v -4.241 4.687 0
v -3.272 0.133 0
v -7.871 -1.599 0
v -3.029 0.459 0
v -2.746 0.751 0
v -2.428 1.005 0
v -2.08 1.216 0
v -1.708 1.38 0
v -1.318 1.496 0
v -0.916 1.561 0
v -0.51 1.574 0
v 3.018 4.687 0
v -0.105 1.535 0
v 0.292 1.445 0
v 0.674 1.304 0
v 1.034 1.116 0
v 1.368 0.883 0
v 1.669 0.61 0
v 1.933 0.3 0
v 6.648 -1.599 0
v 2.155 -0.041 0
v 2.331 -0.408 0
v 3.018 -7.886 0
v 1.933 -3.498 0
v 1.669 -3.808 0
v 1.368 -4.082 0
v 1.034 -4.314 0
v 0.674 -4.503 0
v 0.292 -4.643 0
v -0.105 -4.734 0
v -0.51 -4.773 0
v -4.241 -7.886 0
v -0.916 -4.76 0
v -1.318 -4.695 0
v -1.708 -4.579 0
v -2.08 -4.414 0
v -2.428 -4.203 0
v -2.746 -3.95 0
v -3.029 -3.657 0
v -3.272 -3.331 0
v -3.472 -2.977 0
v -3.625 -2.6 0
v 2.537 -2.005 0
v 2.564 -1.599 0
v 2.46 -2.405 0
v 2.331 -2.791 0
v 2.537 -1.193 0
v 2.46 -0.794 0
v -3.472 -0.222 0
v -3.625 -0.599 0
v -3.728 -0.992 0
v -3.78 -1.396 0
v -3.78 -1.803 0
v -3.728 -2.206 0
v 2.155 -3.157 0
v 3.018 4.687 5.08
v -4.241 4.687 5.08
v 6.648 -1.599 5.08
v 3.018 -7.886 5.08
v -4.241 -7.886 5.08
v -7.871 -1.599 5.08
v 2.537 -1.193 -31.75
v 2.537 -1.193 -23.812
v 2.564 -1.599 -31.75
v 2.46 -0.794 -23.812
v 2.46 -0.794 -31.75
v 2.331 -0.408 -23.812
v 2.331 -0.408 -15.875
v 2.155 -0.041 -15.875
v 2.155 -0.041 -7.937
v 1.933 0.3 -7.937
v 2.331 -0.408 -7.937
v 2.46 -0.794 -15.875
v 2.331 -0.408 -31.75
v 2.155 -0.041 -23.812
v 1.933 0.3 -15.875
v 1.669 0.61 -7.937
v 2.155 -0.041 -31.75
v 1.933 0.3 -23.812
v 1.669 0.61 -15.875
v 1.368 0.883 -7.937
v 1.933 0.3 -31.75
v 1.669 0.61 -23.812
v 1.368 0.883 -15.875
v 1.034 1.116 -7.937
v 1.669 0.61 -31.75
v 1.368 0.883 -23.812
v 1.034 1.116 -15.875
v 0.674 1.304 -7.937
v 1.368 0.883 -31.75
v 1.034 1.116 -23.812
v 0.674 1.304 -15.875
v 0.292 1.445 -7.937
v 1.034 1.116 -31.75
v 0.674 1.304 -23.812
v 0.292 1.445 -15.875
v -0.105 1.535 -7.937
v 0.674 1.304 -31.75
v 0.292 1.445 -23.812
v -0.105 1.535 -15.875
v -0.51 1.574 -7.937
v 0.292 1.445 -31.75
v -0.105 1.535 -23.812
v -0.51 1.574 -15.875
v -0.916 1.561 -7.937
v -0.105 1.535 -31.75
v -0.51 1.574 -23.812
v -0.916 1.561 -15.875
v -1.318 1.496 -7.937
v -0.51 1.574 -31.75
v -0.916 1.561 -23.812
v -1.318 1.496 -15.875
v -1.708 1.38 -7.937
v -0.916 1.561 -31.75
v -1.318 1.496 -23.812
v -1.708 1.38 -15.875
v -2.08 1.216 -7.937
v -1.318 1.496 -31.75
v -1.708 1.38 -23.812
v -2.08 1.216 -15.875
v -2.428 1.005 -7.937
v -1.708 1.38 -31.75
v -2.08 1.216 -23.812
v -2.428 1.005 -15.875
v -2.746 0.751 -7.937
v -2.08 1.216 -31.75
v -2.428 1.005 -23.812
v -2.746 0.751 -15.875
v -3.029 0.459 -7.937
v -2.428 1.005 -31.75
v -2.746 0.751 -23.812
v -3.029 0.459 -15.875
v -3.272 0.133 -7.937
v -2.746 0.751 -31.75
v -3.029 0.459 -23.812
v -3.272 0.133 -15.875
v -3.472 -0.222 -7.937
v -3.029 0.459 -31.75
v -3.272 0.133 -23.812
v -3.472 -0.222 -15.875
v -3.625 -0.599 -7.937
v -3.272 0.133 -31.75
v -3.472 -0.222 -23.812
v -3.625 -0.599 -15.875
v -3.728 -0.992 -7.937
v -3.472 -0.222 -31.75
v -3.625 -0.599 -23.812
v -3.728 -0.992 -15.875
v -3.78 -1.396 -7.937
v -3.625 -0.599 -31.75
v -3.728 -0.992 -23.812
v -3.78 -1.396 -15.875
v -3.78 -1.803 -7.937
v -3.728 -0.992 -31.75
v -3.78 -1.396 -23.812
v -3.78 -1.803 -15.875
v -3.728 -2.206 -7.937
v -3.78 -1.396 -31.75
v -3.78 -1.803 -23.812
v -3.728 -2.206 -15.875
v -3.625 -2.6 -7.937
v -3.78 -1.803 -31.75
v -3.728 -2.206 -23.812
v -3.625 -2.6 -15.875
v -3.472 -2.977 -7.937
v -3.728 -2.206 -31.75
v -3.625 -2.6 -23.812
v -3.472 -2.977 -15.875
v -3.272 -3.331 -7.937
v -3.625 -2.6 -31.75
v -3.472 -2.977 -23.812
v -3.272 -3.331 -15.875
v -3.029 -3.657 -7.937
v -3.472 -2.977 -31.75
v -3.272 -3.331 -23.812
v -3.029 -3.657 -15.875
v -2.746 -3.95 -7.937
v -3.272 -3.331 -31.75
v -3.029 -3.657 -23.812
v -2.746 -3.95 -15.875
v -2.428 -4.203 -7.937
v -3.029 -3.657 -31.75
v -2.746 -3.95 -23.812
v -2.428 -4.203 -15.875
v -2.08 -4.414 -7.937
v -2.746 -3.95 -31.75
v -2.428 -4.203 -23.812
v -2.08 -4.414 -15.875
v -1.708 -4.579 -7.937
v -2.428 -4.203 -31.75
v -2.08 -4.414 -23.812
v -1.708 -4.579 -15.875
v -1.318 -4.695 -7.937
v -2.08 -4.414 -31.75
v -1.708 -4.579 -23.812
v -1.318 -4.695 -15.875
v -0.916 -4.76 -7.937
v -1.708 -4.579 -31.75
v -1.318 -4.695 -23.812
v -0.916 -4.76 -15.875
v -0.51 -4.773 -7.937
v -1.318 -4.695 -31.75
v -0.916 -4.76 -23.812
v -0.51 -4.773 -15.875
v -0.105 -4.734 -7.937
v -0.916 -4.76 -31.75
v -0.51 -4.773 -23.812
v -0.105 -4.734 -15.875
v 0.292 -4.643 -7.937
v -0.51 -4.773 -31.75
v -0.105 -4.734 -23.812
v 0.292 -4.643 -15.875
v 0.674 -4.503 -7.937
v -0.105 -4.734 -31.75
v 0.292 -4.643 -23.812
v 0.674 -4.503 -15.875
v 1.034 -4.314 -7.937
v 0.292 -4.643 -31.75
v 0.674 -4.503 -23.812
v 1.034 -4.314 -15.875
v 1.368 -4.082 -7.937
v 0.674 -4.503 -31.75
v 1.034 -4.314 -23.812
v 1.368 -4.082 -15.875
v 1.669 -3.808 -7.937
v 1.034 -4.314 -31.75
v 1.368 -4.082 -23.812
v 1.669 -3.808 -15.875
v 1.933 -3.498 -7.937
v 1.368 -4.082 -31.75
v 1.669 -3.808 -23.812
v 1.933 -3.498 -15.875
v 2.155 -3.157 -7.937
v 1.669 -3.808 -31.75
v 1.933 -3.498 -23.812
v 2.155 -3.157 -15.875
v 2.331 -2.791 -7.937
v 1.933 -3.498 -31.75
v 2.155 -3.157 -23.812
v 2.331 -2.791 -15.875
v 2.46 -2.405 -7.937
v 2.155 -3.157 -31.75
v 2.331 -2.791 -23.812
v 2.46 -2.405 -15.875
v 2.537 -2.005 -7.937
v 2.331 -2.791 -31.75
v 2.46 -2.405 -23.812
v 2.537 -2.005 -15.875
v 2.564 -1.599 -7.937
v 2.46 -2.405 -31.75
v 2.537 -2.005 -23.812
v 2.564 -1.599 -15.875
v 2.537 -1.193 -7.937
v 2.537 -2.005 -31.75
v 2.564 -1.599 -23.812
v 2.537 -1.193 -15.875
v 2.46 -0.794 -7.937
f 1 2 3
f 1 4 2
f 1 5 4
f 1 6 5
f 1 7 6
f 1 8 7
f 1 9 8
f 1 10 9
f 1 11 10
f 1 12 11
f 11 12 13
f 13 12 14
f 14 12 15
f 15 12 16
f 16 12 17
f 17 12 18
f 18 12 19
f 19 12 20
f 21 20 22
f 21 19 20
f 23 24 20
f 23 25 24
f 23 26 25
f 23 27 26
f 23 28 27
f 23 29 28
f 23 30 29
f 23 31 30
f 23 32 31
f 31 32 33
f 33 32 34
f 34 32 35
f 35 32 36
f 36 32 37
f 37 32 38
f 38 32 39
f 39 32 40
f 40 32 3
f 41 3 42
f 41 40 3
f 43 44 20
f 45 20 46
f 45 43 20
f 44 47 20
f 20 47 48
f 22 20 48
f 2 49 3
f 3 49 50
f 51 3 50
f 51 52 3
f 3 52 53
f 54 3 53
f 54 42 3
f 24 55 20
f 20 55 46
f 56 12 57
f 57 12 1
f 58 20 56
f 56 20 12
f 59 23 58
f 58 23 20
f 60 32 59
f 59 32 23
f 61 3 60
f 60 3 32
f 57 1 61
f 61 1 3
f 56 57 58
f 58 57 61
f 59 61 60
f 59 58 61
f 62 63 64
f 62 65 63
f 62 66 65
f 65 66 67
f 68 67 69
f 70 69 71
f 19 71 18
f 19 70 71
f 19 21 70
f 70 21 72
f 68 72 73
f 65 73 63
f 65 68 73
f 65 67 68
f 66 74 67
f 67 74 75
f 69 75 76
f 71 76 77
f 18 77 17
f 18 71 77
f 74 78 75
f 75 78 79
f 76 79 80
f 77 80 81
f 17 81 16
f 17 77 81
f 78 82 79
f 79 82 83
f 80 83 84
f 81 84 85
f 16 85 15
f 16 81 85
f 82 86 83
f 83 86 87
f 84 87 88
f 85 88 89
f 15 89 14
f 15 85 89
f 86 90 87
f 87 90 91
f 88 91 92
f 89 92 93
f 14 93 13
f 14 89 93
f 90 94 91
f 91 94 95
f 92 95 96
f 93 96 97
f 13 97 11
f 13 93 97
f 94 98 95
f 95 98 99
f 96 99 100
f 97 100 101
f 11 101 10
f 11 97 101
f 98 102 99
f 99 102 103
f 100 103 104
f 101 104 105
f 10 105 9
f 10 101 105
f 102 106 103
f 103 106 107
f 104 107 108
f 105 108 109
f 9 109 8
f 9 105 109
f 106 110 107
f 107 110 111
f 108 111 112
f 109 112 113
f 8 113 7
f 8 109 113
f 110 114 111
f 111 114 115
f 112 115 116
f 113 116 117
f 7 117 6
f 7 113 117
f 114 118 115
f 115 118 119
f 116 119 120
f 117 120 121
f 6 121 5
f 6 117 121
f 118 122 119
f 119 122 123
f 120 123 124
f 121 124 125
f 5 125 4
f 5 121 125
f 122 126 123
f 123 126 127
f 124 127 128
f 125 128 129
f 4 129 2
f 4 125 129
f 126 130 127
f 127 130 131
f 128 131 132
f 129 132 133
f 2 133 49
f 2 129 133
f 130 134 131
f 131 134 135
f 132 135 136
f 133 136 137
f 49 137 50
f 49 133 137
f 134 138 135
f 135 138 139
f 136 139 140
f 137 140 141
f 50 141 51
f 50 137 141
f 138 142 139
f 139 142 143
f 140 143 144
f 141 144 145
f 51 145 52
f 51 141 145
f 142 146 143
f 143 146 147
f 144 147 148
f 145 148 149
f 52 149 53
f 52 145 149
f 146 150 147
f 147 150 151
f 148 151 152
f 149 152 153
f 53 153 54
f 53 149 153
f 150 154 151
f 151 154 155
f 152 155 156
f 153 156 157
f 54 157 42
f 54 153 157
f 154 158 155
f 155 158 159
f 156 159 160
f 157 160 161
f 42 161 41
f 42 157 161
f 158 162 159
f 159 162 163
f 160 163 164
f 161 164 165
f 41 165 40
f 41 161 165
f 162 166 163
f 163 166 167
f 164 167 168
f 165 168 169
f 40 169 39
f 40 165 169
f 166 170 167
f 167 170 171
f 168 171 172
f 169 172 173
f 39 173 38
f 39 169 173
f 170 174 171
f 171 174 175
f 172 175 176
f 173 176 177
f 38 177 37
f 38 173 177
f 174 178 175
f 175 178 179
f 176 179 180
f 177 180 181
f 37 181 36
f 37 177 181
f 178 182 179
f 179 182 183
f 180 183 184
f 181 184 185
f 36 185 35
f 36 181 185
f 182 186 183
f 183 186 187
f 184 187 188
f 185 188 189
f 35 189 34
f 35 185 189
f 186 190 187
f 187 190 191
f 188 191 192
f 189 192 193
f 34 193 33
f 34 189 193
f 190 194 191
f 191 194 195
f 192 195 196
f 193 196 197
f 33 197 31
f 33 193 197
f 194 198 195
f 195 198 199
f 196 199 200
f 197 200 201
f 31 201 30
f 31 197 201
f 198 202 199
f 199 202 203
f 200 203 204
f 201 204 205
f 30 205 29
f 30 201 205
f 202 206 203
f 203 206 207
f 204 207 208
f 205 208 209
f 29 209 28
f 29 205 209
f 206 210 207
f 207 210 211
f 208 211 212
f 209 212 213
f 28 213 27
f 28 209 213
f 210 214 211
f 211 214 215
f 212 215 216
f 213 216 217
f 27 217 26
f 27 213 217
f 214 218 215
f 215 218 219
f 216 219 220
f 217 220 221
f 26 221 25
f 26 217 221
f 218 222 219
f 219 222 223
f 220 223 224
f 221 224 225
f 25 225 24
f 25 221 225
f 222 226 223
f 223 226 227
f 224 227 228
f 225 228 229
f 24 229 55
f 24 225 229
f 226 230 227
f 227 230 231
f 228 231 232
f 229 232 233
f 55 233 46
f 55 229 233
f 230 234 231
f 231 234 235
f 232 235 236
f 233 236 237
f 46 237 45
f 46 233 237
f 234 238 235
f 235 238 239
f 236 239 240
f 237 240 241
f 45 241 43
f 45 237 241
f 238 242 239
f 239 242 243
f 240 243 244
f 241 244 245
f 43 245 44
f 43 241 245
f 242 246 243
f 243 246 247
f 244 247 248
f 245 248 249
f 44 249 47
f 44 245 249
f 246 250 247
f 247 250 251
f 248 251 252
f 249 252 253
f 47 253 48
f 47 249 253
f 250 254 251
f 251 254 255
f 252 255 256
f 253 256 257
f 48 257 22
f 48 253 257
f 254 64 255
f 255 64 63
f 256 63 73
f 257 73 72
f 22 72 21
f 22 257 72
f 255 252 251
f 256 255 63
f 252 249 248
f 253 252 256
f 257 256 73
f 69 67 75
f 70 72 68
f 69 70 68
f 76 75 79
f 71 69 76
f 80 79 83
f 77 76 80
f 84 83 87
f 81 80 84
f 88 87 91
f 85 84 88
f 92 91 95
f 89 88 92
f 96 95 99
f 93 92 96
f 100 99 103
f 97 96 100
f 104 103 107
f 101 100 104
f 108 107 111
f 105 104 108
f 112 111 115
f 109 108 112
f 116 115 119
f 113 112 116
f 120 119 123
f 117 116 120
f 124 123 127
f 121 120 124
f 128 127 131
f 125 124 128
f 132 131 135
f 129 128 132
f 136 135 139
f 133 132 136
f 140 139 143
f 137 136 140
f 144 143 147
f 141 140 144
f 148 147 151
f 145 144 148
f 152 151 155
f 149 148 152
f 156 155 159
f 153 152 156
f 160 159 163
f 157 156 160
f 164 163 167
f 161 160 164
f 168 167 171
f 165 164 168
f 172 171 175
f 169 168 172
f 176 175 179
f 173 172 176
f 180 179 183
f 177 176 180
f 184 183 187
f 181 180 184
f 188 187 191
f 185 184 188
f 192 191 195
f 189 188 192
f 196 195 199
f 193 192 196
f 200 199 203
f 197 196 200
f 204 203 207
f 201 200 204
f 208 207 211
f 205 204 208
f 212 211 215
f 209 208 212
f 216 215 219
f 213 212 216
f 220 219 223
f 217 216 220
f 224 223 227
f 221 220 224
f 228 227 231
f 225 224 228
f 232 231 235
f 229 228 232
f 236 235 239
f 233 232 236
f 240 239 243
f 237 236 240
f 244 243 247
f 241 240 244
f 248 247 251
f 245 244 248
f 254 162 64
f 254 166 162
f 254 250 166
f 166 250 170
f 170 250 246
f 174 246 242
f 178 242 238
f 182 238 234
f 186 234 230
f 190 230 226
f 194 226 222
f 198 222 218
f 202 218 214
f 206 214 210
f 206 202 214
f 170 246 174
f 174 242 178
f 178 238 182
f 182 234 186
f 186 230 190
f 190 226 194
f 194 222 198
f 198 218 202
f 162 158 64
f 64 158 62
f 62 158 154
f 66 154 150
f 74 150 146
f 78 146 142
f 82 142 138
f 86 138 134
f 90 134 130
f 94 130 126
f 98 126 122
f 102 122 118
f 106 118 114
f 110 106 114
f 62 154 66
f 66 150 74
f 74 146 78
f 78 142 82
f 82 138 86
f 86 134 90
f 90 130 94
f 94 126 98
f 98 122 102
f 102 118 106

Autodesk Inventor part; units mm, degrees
ref_plane "YZ Plane" through (0, 0, 0) normal (1, 0, 0) x (0, 1, 0)
ref_plane "XZ Plane" through (0, 0, 0) normal (0, 1, 0) x (-1, 0, 0)
ref_plane "XY Plane" through (0, 0, 0) normal (0, 0, 1) x (1, 0, 0)
sketch "Sketch1" plane through (0, 0, 0) normal (0, 0, 1) x (1, 0, 0)
  circle A0 centre (-0.6115, -1.5992) radius 3.175
  line L0 (-7.8705, -1.5992) -> (-4.241, 4.6873)
  line L1 (-4.241, 4.6873) -> (3.018, 4.6873)
  line L2 (3.018, 4.6873) -> (6.6475, -1.5992)
  line L3 (6.6475, -1.5992) -> (3.018, -7.8857)
  line L4 (3.018, -7.8857) -> (-4.241, -7.8857)
  line L5 (-4.241, -7.8857) -> (-7.8705, -1.5992)
  dimension "d10" = 12.573
extrude "Extrusion1" add sketch "Sketch1" against normal blind 31.75 contours A0
extrude "Extrusion2" add sketch "Sketch1" along normal blind 5.08 contours A0 | L0 L1 L2 L3 L4 L5
thread "Thread1" size "5/16-18 UNC" class "2A" standard "ANSI Unified Screw Threads" full length
properties part number "HW-00037"
